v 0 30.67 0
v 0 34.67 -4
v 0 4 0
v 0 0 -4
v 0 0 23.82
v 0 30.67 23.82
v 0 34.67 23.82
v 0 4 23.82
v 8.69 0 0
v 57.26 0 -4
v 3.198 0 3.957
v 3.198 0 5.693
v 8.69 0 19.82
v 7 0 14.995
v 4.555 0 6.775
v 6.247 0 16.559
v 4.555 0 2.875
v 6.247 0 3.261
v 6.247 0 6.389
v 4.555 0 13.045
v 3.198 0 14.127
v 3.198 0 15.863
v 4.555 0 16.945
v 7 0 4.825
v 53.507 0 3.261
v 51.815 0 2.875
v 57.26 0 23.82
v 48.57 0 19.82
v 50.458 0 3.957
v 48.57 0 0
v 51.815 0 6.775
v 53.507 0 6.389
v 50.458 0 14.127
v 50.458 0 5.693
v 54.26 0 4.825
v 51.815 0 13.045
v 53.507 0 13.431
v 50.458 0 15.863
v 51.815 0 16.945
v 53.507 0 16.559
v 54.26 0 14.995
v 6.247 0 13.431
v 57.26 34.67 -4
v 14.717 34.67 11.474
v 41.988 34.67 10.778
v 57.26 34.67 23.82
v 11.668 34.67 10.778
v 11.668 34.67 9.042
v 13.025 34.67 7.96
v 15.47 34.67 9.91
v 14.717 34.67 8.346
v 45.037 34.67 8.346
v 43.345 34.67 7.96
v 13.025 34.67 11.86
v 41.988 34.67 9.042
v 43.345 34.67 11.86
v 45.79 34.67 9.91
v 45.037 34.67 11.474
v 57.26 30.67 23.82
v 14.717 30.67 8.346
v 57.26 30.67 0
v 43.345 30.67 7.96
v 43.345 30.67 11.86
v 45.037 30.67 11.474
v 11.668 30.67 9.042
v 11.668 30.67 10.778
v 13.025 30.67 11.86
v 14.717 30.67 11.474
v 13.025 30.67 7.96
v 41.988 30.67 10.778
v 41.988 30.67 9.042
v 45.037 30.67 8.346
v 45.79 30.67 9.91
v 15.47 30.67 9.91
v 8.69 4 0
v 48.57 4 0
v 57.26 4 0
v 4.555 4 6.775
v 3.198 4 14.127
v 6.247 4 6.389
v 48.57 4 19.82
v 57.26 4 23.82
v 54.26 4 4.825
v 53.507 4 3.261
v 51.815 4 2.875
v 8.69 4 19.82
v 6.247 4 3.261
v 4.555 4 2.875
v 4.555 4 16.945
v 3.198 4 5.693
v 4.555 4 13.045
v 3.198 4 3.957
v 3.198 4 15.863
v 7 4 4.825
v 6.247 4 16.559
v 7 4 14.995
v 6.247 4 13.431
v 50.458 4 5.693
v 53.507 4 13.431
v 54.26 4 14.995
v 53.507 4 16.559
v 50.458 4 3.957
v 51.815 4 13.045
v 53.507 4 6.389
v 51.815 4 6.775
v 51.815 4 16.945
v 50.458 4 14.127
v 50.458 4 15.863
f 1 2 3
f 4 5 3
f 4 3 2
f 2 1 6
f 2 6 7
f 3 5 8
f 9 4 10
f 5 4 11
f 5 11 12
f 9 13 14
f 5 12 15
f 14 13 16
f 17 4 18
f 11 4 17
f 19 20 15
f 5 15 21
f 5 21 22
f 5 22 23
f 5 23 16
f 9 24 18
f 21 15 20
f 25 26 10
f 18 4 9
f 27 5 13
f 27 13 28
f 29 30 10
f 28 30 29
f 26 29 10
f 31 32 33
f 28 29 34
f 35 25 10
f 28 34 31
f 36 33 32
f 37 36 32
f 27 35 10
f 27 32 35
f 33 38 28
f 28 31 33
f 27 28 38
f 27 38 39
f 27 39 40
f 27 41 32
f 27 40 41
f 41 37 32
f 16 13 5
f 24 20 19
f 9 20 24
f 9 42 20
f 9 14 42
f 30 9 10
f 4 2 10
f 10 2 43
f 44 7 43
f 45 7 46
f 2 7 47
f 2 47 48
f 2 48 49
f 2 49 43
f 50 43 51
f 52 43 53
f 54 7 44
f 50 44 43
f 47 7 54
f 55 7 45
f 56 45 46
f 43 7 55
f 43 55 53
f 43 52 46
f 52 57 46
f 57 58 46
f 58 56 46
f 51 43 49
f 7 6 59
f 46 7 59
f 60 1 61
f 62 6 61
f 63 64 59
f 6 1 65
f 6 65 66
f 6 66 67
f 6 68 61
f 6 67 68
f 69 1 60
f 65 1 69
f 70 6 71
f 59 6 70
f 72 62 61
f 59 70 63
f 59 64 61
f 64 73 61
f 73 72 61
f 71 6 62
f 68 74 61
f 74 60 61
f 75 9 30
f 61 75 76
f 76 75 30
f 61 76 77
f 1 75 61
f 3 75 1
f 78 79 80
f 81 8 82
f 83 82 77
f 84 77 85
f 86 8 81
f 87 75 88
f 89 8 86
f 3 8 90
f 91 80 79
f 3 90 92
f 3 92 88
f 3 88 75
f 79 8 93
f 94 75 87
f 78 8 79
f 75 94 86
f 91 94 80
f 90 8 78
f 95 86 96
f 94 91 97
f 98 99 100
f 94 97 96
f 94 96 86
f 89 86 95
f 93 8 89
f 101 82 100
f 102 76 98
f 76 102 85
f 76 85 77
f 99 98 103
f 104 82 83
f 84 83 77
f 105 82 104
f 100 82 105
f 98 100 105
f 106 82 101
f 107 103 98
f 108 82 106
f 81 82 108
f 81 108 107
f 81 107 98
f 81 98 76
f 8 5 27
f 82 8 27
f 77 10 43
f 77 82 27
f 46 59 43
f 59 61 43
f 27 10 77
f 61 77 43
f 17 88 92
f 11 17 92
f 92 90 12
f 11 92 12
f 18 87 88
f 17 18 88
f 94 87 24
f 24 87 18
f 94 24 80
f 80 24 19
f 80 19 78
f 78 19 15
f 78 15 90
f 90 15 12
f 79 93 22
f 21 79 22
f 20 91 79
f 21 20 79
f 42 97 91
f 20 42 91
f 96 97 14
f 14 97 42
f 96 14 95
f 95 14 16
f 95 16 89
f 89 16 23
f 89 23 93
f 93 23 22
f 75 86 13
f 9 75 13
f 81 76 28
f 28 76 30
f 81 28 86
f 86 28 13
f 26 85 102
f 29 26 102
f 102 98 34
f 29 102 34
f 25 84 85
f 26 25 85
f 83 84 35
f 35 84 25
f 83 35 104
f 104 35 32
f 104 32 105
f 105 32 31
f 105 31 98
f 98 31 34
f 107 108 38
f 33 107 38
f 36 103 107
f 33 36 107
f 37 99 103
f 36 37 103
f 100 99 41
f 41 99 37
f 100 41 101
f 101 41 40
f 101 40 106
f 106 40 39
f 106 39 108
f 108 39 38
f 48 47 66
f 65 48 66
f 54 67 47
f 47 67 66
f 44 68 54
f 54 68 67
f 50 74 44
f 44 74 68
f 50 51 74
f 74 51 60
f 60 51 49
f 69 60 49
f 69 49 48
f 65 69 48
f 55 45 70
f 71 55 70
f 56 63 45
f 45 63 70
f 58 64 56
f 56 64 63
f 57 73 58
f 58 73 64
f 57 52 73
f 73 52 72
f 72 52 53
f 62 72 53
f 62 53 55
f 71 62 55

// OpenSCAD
module servo_bracket()
{

A = 19.82;
B = 13.47;
C = 33.79;
D = 10.17;
E = 9.66;
F = 30.22;
G = 11.68;
H = 26.67;
J = 52.84;

thickness = 4;

module pinhole( x, y, z ){
	translate([x,y,z]){
		rotate(90,[1,0,0]){
			cylinder(h=thickness+2,r=2);
		}
	}
}

	//zero ball
	//sphere(r=1);

	//front plate
	//sanity check ball
	//translate( [ 0, 0, A ] ){
	//	sphere(r=1);
	//}
	difference(){
		cube( size=[ B+C+10, thickness, A+thickness ] );
		translate( [ ((B+C+10)-(E+F))/2, -1, 0] ){
			cube( size=[ E+F, thickness+2, A ] );
		}

		translate( [ 0, thickness+1, 0] ){
			//four mounting holes
			pinhole( 5, 0, (A-D)/2 );
			pinhole( 5, 0, ((A-D)/2)+D );
			pinhole( B+C+5, 0, (A-D)/2 );
			pinhole( B+C+5, 0, ((A-D)/2)+D );
		}
	}

	//back plate
	//sanity check ball
	//translate( [ 0, H, 0] ){
	//	sphere(r=1);
	//}
	difference(){
		translate( [0, H+thickness, 0] ){
			cube( size=[ B+C+10, thickness, A+thickness ] );
		}

		//pivot holes behind servo
		pinhole( B, H+(thickness*2)+1, A/2 );
		pinhole( (B+C+10)-B, H+(thickness*2)+1, A/2 );
	}

	//base
	translate( [ 0, 0, -thickness ] ){
		cube( size=[ B+C+10, H+(thickness*2), thickness ] );
	}
}

servo_bracket();
